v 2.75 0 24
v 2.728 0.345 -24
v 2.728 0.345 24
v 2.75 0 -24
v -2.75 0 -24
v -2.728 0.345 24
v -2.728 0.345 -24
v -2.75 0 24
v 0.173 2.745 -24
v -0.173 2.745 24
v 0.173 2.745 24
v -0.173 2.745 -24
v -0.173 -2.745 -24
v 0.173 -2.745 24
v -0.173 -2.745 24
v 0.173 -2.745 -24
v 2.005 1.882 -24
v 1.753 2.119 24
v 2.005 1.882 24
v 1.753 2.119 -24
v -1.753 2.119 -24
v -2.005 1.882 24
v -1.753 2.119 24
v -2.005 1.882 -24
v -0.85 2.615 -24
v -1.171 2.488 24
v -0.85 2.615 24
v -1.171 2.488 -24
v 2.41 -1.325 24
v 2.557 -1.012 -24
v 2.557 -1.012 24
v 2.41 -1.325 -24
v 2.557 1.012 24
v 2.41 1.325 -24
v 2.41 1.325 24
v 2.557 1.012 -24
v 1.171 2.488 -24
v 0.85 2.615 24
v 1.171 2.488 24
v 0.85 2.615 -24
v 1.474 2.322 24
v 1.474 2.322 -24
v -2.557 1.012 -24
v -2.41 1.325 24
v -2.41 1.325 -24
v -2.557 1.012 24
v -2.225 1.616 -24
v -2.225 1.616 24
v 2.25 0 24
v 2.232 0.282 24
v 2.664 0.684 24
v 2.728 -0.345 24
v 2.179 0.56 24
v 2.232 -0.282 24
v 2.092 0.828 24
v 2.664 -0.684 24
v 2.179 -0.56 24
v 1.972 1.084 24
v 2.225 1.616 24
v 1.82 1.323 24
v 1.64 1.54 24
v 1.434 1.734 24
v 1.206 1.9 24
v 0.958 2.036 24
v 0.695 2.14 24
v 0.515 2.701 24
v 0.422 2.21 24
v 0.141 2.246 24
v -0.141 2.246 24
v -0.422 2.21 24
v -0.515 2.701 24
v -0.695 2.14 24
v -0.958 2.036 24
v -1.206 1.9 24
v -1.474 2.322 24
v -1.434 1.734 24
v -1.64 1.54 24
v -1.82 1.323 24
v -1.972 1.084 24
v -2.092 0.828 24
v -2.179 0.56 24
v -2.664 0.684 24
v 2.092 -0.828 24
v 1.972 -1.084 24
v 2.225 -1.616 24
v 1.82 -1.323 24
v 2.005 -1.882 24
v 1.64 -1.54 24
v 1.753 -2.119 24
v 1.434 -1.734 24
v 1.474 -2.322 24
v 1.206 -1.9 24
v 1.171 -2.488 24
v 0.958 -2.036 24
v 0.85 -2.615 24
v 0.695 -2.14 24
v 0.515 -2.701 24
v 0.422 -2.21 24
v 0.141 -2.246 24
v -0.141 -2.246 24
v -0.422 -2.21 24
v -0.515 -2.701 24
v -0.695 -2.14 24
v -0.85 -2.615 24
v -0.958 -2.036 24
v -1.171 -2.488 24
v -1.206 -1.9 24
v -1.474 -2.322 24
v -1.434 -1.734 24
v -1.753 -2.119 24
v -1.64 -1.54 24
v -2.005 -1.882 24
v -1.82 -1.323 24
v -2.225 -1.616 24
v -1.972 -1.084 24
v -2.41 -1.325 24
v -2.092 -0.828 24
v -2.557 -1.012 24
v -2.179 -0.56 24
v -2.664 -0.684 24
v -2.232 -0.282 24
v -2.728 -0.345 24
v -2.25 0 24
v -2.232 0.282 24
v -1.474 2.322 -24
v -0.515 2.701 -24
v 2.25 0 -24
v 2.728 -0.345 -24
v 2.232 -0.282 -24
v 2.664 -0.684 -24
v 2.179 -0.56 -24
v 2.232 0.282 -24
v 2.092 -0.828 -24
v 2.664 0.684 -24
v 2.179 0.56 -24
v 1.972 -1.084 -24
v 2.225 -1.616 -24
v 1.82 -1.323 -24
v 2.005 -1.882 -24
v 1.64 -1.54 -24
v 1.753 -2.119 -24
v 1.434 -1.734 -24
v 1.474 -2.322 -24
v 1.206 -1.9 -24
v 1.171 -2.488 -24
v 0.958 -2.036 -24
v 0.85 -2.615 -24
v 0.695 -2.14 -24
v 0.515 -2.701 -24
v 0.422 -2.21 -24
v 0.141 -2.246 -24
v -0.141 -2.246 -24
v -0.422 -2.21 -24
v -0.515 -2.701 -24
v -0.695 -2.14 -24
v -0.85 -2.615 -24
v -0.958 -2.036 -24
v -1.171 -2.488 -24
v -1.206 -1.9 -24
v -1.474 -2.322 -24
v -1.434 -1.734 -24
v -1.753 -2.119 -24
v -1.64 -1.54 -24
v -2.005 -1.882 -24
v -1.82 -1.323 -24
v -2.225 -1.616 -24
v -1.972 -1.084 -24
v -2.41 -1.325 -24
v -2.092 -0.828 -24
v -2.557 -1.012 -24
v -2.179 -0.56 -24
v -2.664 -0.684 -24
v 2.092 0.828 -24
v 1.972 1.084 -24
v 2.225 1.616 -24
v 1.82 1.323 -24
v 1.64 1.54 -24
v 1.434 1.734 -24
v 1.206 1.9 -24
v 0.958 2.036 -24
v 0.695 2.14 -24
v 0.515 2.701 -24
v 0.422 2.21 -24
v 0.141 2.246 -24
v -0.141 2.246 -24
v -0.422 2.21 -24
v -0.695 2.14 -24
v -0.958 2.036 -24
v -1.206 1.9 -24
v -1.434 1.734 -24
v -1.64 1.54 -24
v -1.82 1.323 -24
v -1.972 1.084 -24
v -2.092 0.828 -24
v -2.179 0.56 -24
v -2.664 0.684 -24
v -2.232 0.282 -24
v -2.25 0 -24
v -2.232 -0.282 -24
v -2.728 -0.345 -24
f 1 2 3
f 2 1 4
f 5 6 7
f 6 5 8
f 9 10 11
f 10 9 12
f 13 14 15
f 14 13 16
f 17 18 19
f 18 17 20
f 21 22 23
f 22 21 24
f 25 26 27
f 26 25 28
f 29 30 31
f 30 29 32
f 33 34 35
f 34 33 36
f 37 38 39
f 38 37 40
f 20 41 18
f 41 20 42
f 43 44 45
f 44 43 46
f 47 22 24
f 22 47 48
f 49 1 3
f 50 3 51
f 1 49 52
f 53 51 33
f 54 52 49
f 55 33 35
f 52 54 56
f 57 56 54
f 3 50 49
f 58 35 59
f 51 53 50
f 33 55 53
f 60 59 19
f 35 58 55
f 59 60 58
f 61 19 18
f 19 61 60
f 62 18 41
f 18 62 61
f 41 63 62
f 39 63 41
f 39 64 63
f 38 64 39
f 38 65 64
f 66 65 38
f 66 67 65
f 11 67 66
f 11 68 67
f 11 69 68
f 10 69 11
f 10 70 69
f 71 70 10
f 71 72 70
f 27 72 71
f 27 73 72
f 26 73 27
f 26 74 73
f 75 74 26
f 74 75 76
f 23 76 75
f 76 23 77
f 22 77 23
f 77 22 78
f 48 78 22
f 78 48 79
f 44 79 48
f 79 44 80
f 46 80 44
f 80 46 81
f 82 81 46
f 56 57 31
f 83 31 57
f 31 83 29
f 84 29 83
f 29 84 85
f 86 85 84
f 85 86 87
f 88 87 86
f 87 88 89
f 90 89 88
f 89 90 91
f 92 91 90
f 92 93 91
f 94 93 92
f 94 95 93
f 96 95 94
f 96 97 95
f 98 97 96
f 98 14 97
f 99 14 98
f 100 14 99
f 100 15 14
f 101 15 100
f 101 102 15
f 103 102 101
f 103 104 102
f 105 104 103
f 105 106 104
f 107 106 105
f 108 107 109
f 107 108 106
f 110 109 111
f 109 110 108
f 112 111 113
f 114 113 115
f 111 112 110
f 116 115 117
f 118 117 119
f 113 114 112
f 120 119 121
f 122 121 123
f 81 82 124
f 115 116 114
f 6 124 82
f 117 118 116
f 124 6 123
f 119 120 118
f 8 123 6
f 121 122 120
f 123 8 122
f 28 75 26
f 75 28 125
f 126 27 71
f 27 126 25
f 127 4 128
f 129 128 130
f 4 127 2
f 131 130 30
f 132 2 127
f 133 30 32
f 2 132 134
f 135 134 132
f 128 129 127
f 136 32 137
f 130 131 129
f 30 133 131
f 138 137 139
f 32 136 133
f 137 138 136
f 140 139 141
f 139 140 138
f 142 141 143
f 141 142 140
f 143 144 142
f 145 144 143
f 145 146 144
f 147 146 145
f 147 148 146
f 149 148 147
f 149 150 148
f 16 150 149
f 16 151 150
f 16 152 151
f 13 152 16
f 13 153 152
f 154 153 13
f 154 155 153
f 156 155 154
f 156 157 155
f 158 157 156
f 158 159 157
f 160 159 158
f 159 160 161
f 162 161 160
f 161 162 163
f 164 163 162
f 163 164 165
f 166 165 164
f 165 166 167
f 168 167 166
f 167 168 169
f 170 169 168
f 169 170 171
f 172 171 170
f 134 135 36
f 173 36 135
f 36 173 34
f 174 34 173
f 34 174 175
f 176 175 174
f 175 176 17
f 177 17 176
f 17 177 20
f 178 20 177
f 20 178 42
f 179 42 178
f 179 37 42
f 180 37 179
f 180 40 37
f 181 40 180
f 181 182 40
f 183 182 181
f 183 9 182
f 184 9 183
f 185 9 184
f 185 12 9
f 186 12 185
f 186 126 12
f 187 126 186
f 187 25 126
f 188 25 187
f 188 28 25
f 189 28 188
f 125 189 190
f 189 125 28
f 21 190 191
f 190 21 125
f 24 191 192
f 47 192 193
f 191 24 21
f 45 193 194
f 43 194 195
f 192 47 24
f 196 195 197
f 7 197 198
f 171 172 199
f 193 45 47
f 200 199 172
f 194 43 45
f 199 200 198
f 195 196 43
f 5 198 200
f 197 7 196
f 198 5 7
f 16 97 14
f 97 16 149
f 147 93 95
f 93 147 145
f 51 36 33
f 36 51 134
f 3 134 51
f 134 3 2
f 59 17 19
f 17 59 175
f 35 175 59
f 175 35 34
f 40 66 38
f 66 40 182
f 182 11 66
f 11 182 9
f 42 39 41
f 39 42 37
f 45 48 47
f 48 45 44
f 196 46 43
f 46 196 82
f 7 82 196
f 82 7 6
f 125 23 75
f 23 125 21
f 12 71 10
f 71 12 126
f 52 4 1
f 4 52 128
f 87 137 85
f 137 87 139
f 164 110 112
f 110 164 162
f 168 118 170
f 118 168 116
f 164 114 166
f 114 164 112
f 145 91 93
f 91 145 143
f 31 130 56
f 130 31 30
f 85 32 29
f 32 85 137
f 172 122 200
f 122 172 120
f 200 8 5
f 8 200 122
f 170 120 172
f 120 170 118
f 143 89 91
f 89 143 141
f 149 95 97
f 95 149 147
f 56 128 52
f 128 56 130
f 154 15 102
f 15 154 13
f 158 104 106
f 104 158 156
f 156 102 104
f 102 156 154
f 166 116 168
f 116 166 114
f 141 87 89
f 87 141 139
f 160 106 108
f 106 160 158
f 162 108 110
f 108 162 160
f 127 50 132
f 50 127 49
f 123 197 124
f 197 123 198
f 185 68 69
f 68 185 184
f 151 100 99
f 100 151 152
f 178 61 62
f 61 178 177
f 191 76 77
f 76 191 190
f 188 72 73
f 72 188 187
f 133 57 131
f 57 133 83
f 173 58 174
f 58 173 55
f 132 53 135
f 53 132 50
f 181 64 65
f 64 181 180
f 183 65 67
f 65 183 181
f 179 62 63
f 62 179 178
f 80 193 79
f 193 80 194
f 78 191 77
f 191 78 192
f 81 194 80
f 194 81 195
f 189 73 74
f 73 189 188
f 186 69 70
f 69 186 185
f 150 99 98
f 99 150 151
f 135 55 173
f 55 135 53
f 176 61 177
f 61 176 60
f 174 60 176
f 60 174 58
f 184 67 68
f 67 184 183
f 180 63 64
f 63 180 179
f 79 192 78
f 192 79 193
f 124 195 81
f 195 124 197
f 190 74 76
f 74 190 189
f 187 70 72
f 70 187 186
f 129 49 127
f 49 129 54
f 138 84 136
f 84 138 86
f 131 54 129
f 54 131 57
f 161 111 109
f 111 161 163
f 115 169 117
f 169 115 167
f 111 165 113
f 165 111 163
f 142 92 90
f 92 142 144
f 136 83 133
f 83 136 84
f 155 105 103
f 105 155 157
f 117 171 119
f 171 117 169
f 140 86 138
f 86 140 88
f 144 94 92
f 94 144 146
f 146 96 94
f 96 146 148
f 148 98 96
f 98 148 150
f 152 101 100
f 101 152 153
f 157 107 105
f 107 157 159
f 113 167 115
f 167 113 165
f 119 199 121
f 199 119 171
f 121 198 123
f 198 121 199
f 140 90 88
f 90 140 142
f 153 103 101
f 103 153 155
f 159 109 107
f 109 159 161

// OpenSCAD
$fn = 50;


difference() {
	union() {
		translate(v = [0, 0, -24.0000000000]) {
			cylinder(h = 48, r = 2.7500000000);
		}
	}
	union() {
		translate(v = [0, 0, -100.0000000000]) {
			cylinder(h = 200, r = 2.2500000000);
		}
	}
}
